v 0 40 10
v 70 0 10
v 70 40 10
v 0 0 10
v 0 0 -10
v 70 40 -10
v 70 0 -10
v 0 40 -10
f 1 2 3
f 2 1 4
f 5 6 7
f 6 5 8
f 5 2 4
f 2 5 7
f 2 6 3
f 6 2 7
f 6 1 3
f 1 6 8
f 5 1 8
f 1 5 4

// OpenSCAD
// Define dimensions for the rectangular block
length = 70;  // Adjusted length to match the original model's longer proportions
width = 40;   // Adjusted width to match the original model's proportions
height = 20;  // Height remains the same

// Adjust the position and orientation of the block
translate([0, 0, -10])  // Lower the block to match the original vertical position
rotate([0, 0, 0])       // Align the block horizontally (remove tilt)
cube([length, width, height]);
